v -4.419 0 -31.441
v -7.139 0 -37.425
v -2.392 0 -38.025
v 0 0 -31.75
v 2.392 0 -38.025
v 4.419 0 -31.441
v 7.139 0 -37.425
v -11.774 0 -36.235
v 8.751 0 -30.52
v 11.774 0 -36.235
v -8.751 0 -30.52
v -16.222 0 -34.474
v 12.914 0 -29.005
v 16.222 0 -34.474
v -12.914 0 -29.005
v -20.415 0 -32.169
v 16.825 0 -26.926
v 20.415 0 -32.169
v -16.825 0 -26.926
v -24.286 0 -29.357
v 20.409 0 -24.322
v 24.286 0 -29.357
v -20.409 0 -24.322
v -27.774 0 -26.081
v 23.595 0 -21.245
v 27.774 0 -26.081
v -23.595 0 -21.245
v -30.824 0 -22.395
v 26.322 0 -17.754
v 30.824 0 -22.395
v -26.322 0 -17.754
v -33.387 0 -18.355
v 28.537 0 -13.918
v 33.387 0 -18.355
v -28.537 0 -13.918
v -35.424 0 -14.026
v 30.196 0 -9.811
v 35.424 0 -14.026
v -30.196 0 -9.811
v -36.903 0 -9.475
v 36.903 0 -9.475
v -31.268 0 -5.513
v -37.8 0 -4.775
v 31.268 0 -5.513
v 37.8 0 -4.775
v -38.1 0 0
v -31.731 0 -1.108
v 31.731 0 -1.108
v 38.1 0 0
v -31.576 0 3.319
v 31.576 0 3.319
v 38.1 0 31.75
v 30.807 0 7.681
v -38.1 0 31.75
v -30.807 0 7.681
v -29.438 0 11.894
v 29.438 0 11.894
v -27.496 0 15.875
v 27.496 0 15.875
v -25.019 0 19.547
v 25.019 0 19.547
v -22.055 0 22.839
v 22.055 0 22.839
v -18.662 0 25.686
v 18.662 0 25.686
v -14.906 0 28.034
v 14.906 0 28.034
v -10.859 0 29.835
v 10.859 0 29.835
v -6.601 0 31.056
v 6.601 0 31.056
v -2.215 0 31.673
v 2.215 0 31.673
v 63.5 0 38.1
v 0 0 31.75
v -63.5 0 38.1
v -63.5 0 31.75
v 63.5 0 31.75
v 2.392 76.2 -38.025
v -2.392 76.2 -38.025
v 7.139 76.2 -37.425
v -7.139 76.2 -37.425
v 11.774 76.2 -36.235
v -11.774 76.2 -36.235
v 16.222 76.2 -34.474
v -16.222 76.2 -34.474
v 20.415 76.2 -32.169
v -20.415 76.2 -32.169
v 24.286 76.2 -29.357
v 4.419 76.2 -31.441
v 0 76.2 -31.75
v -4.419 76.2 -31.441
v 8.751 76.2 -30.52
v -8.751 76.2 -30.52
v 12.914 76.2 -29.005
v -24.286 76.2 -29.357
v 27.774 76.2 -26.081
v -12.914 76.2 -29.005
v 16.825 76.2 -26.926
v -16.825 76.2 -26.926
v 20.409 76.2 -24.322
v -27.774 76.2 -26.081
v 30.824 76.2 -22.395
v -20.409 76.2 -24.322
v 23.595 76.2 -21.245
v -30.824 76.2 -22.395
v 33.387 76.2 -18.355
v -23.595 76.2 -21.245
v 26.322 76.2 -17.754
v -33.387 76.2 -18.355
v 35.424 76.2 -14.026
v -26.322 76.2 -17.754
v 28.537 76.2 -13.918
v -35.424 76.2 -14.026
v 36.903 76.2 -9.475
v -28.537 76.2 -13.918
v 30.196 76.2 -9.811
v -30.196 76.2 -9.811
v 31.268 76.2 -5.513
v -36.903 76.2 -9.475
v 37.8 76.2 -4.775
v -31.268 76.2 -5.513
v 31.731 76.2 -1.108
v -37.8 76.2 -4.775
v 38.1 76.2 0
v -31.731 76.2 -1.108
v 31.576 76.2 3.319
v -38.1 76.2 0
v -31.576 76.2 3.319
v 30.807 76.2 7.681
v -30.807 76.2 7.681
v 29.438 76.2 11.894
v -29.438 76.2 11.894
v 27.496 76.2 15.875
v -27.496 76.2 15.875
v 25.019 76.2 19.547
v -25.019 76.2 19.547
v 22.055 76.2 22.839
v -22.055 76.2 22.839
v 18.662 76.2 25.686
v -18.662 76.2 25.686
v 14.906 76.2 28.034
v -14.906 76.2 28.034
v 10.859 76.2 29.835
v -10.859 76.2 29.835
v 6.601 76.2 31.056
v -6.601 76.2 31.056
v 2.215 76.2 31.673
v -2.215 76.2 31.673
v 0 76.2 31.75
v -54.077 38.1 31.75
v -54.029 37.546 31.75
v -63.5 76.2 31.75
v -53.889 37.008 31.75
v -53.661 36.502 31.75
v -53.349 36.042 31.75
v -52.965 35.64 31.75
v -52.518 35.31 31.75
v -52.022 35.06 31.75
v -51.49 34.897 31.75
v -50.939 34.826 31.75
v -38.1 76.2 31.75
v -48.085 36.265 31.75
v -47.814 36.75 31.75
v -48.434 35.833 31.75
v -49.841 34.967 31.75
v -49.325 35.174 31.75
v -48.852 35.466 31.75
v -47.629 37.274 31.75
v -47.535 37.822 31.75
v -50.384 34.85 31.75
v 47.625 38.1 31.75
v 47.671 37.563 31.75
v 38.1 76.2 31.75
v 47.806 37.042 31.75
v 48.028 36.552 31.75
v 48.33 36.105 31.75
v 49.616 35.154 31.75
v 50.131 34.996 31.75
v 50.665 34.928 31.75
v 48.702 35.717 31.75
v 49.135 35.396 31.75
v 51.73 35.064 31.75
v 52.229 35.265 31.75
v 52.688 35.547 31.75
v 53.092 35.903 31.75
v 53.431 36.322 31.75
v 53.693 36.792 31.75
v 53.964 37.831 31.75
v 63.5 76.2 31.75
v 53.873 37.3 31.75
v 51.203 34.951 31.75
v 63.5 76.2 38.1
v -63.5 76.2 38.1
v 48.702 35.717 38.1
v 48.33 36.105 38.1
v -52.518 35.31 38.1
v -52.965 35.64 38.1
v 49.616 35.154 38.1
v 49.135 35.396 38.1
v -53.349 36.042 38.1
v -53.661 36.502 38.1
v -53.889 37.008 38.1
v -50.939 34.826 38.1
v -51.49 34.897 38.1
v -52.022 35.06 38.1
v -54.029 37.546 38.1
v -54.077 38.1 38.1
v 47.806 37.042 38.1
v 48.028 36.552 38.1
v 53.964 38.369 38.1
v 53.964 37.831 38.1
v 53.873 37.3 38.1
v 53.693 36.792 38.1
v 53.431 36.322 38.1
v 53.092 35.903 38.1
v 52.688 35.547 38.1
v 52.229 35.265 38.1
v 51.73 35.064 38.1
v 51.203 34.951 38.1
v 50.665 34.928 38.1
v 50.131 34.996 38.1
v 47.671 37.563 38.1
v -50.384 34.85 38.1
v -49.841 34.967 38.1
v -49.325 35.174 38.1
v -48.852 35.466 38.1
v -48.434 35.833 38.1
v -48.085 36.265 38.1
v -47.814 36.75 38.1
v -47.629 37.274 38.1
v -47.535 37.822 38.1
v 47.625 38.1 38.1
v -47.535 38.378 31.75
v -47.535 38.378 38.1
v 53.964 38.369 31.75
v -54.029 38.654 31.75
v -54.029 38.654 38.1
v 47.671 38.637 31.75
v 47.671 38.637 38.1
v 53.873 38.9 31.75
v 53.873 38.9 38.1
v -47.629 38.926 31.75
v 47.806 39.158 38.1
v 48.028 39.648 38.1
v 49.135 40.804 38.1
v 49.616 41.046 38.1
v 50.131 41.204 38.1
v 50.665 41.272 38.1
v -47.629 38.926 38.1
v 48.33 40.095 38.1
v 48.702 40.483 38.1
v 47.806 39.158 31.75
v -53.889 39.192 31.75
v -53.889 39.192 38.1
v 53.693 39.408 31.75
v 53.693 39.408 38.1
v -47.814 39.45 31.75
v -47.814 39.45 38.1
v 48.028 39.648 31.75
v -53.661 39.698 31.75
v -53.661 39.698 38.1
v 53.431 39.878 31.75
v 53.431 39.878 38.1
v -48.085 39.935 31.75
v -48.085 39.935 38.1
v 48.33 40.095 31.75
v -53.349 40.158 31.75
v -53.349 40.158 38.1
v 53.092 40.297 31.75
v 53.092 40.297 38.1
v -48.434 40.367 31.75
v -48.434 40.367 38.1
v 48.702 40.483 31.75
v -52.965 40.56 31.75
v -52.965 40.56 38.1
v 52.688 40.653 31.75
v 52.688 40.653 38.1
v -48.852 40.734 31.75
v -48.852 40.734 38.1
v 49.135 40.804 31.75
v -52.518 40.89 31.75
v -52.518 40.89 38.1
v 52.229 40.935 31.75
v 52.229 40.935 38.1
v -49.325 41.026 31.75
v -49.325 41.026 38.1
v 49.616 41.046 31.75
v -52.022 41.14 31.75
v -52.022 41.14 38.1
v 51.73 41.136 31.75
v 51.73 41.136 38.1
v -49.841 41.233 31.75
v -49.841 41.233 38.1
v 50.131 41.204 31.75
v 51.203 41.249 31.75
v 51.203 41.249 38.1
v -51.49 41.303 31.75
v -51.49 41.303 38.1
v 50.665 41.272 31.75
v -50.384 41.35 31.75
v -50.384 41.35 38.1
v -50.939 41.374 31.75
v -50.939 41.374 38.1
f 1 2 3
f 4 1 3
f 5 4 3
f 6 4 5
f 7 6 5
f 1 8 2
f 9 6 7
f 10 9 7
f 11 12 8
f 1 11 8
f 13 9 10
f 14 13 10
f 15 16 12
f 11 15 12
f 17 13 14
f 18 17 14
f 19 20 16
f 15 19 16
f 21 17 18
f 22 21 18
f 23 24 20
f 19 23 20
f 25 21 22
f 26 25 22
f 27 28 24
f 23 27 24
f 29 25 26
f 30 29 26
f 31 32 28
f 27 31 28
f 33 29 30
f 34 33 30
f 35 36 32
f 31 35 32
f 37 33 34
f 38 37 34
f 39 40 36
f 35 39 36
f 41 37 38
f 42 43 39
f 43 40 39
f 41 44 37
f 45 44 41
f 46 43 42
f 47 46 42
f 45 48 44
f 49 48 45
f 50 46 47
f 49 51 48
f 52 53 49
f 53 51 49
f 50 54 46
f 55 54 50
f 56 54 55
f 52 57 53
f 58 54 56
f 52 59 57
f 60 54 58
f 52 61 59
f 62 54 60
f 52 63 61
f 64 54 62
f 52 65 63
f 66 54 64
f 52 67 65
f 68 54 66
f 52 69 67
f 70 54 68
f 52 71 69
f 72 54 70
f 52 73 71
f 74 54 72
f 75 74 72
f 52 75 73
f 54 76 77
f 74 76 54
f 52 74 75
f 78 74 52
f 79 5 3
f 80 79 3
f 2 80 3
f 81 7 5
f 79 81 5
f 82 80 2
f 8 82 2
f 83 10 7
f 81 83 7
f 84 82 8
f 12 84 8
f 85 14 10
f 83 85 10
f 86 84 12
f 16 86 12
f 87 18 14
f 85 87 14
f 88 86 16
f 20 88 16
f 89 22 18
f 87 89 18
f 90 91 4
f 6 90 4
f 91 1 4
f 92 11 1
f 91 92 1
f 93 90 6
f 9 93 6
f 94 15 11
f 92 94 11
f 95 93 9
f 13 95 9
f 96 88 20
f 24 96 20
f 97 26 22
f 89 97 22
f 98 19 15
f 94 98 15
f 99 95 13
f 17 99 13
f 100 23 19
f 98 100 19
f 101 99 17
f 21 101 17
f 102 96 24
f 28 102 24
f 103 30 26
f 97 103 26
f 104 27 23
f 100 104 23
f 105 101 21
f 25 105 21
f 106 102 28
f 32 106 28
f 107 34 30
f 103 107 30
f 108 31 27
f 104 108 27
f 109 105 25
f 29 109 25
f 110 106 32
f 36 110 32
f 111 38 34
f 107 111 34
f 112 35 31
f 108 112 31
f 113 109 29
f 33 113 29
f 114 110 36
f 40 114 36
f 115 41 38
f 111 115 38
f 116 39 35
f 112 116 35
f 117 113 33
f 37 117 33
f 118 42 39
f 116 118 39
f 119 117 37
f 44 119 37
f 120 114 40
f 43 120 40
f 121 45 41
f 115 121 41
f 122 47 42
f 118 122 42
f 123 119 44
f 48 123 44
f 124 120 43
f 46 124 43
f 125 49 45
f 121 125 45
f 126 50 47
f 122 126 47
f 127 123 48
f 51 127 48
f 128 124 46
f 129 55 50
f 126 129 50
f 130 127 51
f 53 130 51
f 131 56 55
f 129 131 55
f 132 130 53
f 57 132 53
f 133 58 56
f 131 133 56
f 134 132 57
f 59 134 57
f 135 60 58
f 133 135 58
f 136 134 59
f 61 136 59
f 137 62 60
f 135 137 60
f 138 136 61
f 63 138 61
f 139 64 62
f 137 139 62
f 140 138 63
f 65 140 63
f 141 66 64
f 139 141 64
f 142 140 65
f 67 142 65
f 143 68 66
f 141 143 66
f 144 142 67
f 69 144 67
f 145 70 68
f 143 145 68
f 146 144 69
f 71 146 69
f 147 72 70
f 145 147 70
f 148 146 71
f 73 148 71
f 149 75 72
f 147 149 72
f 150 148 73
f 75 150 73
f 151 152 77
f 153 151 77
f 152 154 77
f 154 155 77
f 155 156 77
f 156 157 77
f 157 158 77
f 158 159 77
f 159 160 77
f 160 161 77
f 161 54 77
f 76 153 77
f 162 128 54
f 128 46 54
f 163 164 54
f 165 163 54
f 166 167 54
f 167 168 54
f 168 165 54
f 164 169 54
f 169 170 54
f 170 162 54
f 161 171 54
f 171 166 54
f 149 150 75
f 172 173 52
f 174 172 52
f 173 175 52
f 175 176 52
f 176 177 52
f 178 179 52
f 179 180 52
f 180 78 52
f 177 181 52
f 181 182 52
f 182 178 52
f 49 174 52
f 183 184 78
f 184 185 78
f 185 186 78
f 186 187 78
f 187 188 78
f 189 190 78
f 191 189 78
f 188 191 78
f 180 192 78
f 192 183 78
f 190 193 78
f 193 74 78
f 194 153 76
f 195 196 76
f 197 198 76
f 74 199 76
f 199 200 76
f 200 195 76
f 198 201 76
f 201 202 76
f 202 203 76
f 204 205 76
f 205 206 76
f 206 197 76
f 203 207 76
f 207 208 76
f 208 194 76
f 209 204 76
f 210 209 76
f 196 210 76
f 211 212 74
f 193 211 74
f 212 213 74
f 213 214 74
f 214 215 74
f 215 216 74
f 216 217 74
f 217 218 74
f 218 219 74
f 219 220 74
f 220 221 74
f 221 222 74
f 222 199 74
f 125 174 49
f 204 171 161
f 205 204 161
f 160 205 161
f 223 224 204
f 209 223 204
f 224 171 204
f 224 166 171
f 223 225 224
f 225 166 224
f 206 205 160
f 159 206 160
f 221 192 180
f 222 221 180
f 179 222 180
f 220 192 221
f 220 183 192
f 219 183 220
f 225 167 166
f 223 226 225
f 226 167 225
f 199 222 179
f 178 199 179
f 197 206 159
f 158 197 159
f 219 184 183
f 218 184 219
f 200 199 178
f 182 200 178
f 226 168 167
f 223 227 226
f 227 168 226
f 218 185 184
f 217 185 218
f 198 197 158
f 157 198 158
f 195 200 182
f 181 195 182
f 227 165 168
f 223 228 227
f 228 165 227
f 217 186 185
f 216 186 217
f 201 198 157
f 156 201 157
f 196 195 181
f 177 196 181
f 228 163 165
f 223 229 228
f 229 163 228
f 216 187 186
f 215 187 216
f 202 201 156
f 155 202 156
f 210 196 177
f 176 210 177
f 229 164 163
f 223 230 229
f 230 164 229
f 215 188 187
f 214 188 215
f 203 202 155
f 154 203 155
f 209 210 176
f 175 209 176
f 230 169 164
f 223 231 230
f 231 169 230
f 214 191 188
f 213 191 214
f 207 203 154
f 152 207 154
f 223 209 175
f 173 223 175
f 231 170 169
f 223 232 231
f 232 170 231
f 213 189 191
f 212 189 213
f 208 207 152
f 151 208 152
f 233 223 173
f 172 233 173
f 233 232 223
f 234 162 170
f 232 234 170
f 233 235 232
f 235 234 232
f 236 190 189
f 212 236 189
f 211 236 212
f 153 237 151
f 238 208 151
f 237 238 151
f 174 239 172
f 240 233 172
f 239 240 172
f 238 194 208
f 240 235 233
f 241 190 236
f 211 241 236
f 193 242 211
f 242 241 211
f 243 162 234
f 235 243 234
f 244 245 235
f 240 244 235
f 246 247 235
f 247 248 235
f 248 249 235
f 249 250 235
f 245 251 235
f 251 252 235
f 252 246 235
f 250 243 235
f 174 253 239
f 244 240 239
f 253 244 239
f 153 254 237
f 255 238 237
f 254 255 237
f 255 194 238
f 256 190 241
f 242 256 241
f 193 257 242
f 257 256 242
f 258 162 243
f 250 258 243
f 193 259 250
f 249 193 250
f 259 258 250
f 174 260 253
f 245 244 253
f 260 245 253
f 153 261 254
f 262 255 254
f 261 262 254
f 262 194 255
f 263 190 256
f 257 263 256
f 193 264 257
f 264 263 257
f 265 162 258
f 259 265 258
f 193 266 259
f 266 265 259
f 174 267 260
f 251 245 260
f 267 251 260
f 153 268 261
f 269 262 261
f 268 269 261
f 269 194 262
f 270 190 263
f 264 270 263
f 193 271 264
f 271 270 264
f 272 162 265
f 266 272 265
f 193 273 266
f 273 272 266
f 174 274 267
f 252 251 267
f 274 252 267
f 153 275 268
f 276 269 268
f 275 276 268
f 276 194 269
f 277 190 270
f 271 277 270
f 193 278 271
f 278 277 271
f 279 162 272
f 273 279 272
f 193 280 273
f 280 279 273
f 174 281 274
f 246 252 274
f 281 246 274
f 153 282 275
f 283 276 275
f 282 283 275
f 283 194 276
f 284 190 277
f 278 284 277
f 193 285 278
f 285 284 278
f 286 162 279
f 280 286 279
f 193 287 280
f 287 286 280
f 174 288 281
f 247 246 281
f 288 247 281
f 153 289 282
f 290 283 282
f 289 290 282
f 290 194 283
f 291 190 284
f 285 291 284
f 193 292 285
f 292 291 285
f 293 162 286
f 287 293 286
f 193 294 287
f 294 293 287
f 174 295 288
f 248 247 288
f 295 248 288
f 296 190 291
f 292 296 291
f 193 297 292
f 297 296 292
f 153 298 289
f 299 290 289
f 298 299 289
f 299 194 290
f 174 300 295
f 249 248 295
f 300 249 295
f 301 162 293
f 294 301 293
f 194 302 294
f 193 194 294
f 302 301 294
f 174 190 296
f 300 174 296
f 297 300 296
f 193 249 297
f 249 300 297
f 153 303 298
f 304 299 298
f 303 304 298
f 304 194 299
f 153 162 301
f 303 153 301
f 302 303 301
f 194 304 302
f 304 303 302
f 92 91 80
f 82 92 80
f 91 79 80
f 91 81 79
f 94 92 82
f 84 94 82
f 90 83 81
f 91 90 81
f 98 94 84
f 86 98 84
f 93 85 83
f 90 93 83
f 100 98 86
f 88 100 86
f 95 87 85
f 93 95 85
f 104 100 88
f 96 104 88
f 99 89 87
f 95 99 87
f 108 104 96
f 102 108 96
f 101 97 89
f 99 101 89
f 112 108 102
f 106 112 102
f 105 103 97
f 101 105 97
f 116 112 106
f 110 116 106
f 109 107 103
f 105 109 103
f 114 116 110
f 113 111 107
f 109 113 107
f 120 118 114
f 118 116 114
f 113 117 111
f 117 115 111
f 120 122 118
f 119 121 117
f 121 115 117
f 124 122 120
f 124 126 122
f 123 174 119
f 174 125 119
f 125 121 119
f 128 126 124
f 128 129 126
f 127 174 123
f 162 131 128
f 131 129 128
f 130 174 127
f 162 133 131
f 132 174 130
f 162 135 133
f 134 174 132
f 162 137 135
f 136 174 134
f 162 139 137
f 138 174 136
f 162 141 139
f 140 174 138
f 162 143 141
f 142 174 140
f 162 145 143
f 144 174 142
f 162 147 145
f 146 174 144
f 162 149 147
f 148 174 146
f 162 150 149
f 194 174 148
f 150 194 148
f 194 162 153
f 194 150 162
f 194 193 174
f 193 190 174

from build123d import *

# Parameters (mm, degrees)
SKETCH1_R           = 31.75
BOSS_EXTRUDE1_DEPTH = 76.2
SKETCH2_R           = 3.2766
SKETCH2_R_2         = 3.175
CUT_EXTRUDE1_DEPTH  = 50.8


with BuildPart() as part:
    # Sketch1 → Boss-Extrude1 (new body)
    with BuildSketch(Plane(origin=(0, 0, 0), x_dir=(1, 0, 0), z_dir=(0, 1, 0))):
        with BuildLine():
            Line((-38.1, -31.75), (-63.5, -31.75))
            Line((-63.5, -31.75), (-63.5, -38.1))
            Line((-63.5, -38.1), (63.5, -38.1))
            Line((63.5, -38.1), (63.5, -31.75))
            Line((63.5, -31.75), (38.1, -31.75))
            Line((38.1, -31.75), (38.1, 0))
            ThreePointArc((38.1, 0), (0, 38.1), (-38.1, 0))
            Line((-38.1, 0), (-38.1, -31.75))
        make_face()
        with Locations(Location((0, 0, 0), (0, 0, 90))):
            Circle(SKETCH1_R, mode=Mode.SUBTRACT)
    extrude(amount=BOSS_EXTRUDE1_DEPTH)

    # Sketch2 → Cut-Extrude1 (cut)
    with BuildSketch(Plane(origin=(0, 0, 31.75), x_dir=(-1, 0, 0), z_dir=(0, 0, -1))):
        with Locations((50.8, 38.1)):
            Circle(SKETCH2_R)
        with Locations((-50.8, 38.1)):
            Circle(SKETCH2_R_2)
    extrude(amount=-CUT_EXTRUDE1_DEPTH, mode=Mode.SUBTRACT)


solid = part.part
